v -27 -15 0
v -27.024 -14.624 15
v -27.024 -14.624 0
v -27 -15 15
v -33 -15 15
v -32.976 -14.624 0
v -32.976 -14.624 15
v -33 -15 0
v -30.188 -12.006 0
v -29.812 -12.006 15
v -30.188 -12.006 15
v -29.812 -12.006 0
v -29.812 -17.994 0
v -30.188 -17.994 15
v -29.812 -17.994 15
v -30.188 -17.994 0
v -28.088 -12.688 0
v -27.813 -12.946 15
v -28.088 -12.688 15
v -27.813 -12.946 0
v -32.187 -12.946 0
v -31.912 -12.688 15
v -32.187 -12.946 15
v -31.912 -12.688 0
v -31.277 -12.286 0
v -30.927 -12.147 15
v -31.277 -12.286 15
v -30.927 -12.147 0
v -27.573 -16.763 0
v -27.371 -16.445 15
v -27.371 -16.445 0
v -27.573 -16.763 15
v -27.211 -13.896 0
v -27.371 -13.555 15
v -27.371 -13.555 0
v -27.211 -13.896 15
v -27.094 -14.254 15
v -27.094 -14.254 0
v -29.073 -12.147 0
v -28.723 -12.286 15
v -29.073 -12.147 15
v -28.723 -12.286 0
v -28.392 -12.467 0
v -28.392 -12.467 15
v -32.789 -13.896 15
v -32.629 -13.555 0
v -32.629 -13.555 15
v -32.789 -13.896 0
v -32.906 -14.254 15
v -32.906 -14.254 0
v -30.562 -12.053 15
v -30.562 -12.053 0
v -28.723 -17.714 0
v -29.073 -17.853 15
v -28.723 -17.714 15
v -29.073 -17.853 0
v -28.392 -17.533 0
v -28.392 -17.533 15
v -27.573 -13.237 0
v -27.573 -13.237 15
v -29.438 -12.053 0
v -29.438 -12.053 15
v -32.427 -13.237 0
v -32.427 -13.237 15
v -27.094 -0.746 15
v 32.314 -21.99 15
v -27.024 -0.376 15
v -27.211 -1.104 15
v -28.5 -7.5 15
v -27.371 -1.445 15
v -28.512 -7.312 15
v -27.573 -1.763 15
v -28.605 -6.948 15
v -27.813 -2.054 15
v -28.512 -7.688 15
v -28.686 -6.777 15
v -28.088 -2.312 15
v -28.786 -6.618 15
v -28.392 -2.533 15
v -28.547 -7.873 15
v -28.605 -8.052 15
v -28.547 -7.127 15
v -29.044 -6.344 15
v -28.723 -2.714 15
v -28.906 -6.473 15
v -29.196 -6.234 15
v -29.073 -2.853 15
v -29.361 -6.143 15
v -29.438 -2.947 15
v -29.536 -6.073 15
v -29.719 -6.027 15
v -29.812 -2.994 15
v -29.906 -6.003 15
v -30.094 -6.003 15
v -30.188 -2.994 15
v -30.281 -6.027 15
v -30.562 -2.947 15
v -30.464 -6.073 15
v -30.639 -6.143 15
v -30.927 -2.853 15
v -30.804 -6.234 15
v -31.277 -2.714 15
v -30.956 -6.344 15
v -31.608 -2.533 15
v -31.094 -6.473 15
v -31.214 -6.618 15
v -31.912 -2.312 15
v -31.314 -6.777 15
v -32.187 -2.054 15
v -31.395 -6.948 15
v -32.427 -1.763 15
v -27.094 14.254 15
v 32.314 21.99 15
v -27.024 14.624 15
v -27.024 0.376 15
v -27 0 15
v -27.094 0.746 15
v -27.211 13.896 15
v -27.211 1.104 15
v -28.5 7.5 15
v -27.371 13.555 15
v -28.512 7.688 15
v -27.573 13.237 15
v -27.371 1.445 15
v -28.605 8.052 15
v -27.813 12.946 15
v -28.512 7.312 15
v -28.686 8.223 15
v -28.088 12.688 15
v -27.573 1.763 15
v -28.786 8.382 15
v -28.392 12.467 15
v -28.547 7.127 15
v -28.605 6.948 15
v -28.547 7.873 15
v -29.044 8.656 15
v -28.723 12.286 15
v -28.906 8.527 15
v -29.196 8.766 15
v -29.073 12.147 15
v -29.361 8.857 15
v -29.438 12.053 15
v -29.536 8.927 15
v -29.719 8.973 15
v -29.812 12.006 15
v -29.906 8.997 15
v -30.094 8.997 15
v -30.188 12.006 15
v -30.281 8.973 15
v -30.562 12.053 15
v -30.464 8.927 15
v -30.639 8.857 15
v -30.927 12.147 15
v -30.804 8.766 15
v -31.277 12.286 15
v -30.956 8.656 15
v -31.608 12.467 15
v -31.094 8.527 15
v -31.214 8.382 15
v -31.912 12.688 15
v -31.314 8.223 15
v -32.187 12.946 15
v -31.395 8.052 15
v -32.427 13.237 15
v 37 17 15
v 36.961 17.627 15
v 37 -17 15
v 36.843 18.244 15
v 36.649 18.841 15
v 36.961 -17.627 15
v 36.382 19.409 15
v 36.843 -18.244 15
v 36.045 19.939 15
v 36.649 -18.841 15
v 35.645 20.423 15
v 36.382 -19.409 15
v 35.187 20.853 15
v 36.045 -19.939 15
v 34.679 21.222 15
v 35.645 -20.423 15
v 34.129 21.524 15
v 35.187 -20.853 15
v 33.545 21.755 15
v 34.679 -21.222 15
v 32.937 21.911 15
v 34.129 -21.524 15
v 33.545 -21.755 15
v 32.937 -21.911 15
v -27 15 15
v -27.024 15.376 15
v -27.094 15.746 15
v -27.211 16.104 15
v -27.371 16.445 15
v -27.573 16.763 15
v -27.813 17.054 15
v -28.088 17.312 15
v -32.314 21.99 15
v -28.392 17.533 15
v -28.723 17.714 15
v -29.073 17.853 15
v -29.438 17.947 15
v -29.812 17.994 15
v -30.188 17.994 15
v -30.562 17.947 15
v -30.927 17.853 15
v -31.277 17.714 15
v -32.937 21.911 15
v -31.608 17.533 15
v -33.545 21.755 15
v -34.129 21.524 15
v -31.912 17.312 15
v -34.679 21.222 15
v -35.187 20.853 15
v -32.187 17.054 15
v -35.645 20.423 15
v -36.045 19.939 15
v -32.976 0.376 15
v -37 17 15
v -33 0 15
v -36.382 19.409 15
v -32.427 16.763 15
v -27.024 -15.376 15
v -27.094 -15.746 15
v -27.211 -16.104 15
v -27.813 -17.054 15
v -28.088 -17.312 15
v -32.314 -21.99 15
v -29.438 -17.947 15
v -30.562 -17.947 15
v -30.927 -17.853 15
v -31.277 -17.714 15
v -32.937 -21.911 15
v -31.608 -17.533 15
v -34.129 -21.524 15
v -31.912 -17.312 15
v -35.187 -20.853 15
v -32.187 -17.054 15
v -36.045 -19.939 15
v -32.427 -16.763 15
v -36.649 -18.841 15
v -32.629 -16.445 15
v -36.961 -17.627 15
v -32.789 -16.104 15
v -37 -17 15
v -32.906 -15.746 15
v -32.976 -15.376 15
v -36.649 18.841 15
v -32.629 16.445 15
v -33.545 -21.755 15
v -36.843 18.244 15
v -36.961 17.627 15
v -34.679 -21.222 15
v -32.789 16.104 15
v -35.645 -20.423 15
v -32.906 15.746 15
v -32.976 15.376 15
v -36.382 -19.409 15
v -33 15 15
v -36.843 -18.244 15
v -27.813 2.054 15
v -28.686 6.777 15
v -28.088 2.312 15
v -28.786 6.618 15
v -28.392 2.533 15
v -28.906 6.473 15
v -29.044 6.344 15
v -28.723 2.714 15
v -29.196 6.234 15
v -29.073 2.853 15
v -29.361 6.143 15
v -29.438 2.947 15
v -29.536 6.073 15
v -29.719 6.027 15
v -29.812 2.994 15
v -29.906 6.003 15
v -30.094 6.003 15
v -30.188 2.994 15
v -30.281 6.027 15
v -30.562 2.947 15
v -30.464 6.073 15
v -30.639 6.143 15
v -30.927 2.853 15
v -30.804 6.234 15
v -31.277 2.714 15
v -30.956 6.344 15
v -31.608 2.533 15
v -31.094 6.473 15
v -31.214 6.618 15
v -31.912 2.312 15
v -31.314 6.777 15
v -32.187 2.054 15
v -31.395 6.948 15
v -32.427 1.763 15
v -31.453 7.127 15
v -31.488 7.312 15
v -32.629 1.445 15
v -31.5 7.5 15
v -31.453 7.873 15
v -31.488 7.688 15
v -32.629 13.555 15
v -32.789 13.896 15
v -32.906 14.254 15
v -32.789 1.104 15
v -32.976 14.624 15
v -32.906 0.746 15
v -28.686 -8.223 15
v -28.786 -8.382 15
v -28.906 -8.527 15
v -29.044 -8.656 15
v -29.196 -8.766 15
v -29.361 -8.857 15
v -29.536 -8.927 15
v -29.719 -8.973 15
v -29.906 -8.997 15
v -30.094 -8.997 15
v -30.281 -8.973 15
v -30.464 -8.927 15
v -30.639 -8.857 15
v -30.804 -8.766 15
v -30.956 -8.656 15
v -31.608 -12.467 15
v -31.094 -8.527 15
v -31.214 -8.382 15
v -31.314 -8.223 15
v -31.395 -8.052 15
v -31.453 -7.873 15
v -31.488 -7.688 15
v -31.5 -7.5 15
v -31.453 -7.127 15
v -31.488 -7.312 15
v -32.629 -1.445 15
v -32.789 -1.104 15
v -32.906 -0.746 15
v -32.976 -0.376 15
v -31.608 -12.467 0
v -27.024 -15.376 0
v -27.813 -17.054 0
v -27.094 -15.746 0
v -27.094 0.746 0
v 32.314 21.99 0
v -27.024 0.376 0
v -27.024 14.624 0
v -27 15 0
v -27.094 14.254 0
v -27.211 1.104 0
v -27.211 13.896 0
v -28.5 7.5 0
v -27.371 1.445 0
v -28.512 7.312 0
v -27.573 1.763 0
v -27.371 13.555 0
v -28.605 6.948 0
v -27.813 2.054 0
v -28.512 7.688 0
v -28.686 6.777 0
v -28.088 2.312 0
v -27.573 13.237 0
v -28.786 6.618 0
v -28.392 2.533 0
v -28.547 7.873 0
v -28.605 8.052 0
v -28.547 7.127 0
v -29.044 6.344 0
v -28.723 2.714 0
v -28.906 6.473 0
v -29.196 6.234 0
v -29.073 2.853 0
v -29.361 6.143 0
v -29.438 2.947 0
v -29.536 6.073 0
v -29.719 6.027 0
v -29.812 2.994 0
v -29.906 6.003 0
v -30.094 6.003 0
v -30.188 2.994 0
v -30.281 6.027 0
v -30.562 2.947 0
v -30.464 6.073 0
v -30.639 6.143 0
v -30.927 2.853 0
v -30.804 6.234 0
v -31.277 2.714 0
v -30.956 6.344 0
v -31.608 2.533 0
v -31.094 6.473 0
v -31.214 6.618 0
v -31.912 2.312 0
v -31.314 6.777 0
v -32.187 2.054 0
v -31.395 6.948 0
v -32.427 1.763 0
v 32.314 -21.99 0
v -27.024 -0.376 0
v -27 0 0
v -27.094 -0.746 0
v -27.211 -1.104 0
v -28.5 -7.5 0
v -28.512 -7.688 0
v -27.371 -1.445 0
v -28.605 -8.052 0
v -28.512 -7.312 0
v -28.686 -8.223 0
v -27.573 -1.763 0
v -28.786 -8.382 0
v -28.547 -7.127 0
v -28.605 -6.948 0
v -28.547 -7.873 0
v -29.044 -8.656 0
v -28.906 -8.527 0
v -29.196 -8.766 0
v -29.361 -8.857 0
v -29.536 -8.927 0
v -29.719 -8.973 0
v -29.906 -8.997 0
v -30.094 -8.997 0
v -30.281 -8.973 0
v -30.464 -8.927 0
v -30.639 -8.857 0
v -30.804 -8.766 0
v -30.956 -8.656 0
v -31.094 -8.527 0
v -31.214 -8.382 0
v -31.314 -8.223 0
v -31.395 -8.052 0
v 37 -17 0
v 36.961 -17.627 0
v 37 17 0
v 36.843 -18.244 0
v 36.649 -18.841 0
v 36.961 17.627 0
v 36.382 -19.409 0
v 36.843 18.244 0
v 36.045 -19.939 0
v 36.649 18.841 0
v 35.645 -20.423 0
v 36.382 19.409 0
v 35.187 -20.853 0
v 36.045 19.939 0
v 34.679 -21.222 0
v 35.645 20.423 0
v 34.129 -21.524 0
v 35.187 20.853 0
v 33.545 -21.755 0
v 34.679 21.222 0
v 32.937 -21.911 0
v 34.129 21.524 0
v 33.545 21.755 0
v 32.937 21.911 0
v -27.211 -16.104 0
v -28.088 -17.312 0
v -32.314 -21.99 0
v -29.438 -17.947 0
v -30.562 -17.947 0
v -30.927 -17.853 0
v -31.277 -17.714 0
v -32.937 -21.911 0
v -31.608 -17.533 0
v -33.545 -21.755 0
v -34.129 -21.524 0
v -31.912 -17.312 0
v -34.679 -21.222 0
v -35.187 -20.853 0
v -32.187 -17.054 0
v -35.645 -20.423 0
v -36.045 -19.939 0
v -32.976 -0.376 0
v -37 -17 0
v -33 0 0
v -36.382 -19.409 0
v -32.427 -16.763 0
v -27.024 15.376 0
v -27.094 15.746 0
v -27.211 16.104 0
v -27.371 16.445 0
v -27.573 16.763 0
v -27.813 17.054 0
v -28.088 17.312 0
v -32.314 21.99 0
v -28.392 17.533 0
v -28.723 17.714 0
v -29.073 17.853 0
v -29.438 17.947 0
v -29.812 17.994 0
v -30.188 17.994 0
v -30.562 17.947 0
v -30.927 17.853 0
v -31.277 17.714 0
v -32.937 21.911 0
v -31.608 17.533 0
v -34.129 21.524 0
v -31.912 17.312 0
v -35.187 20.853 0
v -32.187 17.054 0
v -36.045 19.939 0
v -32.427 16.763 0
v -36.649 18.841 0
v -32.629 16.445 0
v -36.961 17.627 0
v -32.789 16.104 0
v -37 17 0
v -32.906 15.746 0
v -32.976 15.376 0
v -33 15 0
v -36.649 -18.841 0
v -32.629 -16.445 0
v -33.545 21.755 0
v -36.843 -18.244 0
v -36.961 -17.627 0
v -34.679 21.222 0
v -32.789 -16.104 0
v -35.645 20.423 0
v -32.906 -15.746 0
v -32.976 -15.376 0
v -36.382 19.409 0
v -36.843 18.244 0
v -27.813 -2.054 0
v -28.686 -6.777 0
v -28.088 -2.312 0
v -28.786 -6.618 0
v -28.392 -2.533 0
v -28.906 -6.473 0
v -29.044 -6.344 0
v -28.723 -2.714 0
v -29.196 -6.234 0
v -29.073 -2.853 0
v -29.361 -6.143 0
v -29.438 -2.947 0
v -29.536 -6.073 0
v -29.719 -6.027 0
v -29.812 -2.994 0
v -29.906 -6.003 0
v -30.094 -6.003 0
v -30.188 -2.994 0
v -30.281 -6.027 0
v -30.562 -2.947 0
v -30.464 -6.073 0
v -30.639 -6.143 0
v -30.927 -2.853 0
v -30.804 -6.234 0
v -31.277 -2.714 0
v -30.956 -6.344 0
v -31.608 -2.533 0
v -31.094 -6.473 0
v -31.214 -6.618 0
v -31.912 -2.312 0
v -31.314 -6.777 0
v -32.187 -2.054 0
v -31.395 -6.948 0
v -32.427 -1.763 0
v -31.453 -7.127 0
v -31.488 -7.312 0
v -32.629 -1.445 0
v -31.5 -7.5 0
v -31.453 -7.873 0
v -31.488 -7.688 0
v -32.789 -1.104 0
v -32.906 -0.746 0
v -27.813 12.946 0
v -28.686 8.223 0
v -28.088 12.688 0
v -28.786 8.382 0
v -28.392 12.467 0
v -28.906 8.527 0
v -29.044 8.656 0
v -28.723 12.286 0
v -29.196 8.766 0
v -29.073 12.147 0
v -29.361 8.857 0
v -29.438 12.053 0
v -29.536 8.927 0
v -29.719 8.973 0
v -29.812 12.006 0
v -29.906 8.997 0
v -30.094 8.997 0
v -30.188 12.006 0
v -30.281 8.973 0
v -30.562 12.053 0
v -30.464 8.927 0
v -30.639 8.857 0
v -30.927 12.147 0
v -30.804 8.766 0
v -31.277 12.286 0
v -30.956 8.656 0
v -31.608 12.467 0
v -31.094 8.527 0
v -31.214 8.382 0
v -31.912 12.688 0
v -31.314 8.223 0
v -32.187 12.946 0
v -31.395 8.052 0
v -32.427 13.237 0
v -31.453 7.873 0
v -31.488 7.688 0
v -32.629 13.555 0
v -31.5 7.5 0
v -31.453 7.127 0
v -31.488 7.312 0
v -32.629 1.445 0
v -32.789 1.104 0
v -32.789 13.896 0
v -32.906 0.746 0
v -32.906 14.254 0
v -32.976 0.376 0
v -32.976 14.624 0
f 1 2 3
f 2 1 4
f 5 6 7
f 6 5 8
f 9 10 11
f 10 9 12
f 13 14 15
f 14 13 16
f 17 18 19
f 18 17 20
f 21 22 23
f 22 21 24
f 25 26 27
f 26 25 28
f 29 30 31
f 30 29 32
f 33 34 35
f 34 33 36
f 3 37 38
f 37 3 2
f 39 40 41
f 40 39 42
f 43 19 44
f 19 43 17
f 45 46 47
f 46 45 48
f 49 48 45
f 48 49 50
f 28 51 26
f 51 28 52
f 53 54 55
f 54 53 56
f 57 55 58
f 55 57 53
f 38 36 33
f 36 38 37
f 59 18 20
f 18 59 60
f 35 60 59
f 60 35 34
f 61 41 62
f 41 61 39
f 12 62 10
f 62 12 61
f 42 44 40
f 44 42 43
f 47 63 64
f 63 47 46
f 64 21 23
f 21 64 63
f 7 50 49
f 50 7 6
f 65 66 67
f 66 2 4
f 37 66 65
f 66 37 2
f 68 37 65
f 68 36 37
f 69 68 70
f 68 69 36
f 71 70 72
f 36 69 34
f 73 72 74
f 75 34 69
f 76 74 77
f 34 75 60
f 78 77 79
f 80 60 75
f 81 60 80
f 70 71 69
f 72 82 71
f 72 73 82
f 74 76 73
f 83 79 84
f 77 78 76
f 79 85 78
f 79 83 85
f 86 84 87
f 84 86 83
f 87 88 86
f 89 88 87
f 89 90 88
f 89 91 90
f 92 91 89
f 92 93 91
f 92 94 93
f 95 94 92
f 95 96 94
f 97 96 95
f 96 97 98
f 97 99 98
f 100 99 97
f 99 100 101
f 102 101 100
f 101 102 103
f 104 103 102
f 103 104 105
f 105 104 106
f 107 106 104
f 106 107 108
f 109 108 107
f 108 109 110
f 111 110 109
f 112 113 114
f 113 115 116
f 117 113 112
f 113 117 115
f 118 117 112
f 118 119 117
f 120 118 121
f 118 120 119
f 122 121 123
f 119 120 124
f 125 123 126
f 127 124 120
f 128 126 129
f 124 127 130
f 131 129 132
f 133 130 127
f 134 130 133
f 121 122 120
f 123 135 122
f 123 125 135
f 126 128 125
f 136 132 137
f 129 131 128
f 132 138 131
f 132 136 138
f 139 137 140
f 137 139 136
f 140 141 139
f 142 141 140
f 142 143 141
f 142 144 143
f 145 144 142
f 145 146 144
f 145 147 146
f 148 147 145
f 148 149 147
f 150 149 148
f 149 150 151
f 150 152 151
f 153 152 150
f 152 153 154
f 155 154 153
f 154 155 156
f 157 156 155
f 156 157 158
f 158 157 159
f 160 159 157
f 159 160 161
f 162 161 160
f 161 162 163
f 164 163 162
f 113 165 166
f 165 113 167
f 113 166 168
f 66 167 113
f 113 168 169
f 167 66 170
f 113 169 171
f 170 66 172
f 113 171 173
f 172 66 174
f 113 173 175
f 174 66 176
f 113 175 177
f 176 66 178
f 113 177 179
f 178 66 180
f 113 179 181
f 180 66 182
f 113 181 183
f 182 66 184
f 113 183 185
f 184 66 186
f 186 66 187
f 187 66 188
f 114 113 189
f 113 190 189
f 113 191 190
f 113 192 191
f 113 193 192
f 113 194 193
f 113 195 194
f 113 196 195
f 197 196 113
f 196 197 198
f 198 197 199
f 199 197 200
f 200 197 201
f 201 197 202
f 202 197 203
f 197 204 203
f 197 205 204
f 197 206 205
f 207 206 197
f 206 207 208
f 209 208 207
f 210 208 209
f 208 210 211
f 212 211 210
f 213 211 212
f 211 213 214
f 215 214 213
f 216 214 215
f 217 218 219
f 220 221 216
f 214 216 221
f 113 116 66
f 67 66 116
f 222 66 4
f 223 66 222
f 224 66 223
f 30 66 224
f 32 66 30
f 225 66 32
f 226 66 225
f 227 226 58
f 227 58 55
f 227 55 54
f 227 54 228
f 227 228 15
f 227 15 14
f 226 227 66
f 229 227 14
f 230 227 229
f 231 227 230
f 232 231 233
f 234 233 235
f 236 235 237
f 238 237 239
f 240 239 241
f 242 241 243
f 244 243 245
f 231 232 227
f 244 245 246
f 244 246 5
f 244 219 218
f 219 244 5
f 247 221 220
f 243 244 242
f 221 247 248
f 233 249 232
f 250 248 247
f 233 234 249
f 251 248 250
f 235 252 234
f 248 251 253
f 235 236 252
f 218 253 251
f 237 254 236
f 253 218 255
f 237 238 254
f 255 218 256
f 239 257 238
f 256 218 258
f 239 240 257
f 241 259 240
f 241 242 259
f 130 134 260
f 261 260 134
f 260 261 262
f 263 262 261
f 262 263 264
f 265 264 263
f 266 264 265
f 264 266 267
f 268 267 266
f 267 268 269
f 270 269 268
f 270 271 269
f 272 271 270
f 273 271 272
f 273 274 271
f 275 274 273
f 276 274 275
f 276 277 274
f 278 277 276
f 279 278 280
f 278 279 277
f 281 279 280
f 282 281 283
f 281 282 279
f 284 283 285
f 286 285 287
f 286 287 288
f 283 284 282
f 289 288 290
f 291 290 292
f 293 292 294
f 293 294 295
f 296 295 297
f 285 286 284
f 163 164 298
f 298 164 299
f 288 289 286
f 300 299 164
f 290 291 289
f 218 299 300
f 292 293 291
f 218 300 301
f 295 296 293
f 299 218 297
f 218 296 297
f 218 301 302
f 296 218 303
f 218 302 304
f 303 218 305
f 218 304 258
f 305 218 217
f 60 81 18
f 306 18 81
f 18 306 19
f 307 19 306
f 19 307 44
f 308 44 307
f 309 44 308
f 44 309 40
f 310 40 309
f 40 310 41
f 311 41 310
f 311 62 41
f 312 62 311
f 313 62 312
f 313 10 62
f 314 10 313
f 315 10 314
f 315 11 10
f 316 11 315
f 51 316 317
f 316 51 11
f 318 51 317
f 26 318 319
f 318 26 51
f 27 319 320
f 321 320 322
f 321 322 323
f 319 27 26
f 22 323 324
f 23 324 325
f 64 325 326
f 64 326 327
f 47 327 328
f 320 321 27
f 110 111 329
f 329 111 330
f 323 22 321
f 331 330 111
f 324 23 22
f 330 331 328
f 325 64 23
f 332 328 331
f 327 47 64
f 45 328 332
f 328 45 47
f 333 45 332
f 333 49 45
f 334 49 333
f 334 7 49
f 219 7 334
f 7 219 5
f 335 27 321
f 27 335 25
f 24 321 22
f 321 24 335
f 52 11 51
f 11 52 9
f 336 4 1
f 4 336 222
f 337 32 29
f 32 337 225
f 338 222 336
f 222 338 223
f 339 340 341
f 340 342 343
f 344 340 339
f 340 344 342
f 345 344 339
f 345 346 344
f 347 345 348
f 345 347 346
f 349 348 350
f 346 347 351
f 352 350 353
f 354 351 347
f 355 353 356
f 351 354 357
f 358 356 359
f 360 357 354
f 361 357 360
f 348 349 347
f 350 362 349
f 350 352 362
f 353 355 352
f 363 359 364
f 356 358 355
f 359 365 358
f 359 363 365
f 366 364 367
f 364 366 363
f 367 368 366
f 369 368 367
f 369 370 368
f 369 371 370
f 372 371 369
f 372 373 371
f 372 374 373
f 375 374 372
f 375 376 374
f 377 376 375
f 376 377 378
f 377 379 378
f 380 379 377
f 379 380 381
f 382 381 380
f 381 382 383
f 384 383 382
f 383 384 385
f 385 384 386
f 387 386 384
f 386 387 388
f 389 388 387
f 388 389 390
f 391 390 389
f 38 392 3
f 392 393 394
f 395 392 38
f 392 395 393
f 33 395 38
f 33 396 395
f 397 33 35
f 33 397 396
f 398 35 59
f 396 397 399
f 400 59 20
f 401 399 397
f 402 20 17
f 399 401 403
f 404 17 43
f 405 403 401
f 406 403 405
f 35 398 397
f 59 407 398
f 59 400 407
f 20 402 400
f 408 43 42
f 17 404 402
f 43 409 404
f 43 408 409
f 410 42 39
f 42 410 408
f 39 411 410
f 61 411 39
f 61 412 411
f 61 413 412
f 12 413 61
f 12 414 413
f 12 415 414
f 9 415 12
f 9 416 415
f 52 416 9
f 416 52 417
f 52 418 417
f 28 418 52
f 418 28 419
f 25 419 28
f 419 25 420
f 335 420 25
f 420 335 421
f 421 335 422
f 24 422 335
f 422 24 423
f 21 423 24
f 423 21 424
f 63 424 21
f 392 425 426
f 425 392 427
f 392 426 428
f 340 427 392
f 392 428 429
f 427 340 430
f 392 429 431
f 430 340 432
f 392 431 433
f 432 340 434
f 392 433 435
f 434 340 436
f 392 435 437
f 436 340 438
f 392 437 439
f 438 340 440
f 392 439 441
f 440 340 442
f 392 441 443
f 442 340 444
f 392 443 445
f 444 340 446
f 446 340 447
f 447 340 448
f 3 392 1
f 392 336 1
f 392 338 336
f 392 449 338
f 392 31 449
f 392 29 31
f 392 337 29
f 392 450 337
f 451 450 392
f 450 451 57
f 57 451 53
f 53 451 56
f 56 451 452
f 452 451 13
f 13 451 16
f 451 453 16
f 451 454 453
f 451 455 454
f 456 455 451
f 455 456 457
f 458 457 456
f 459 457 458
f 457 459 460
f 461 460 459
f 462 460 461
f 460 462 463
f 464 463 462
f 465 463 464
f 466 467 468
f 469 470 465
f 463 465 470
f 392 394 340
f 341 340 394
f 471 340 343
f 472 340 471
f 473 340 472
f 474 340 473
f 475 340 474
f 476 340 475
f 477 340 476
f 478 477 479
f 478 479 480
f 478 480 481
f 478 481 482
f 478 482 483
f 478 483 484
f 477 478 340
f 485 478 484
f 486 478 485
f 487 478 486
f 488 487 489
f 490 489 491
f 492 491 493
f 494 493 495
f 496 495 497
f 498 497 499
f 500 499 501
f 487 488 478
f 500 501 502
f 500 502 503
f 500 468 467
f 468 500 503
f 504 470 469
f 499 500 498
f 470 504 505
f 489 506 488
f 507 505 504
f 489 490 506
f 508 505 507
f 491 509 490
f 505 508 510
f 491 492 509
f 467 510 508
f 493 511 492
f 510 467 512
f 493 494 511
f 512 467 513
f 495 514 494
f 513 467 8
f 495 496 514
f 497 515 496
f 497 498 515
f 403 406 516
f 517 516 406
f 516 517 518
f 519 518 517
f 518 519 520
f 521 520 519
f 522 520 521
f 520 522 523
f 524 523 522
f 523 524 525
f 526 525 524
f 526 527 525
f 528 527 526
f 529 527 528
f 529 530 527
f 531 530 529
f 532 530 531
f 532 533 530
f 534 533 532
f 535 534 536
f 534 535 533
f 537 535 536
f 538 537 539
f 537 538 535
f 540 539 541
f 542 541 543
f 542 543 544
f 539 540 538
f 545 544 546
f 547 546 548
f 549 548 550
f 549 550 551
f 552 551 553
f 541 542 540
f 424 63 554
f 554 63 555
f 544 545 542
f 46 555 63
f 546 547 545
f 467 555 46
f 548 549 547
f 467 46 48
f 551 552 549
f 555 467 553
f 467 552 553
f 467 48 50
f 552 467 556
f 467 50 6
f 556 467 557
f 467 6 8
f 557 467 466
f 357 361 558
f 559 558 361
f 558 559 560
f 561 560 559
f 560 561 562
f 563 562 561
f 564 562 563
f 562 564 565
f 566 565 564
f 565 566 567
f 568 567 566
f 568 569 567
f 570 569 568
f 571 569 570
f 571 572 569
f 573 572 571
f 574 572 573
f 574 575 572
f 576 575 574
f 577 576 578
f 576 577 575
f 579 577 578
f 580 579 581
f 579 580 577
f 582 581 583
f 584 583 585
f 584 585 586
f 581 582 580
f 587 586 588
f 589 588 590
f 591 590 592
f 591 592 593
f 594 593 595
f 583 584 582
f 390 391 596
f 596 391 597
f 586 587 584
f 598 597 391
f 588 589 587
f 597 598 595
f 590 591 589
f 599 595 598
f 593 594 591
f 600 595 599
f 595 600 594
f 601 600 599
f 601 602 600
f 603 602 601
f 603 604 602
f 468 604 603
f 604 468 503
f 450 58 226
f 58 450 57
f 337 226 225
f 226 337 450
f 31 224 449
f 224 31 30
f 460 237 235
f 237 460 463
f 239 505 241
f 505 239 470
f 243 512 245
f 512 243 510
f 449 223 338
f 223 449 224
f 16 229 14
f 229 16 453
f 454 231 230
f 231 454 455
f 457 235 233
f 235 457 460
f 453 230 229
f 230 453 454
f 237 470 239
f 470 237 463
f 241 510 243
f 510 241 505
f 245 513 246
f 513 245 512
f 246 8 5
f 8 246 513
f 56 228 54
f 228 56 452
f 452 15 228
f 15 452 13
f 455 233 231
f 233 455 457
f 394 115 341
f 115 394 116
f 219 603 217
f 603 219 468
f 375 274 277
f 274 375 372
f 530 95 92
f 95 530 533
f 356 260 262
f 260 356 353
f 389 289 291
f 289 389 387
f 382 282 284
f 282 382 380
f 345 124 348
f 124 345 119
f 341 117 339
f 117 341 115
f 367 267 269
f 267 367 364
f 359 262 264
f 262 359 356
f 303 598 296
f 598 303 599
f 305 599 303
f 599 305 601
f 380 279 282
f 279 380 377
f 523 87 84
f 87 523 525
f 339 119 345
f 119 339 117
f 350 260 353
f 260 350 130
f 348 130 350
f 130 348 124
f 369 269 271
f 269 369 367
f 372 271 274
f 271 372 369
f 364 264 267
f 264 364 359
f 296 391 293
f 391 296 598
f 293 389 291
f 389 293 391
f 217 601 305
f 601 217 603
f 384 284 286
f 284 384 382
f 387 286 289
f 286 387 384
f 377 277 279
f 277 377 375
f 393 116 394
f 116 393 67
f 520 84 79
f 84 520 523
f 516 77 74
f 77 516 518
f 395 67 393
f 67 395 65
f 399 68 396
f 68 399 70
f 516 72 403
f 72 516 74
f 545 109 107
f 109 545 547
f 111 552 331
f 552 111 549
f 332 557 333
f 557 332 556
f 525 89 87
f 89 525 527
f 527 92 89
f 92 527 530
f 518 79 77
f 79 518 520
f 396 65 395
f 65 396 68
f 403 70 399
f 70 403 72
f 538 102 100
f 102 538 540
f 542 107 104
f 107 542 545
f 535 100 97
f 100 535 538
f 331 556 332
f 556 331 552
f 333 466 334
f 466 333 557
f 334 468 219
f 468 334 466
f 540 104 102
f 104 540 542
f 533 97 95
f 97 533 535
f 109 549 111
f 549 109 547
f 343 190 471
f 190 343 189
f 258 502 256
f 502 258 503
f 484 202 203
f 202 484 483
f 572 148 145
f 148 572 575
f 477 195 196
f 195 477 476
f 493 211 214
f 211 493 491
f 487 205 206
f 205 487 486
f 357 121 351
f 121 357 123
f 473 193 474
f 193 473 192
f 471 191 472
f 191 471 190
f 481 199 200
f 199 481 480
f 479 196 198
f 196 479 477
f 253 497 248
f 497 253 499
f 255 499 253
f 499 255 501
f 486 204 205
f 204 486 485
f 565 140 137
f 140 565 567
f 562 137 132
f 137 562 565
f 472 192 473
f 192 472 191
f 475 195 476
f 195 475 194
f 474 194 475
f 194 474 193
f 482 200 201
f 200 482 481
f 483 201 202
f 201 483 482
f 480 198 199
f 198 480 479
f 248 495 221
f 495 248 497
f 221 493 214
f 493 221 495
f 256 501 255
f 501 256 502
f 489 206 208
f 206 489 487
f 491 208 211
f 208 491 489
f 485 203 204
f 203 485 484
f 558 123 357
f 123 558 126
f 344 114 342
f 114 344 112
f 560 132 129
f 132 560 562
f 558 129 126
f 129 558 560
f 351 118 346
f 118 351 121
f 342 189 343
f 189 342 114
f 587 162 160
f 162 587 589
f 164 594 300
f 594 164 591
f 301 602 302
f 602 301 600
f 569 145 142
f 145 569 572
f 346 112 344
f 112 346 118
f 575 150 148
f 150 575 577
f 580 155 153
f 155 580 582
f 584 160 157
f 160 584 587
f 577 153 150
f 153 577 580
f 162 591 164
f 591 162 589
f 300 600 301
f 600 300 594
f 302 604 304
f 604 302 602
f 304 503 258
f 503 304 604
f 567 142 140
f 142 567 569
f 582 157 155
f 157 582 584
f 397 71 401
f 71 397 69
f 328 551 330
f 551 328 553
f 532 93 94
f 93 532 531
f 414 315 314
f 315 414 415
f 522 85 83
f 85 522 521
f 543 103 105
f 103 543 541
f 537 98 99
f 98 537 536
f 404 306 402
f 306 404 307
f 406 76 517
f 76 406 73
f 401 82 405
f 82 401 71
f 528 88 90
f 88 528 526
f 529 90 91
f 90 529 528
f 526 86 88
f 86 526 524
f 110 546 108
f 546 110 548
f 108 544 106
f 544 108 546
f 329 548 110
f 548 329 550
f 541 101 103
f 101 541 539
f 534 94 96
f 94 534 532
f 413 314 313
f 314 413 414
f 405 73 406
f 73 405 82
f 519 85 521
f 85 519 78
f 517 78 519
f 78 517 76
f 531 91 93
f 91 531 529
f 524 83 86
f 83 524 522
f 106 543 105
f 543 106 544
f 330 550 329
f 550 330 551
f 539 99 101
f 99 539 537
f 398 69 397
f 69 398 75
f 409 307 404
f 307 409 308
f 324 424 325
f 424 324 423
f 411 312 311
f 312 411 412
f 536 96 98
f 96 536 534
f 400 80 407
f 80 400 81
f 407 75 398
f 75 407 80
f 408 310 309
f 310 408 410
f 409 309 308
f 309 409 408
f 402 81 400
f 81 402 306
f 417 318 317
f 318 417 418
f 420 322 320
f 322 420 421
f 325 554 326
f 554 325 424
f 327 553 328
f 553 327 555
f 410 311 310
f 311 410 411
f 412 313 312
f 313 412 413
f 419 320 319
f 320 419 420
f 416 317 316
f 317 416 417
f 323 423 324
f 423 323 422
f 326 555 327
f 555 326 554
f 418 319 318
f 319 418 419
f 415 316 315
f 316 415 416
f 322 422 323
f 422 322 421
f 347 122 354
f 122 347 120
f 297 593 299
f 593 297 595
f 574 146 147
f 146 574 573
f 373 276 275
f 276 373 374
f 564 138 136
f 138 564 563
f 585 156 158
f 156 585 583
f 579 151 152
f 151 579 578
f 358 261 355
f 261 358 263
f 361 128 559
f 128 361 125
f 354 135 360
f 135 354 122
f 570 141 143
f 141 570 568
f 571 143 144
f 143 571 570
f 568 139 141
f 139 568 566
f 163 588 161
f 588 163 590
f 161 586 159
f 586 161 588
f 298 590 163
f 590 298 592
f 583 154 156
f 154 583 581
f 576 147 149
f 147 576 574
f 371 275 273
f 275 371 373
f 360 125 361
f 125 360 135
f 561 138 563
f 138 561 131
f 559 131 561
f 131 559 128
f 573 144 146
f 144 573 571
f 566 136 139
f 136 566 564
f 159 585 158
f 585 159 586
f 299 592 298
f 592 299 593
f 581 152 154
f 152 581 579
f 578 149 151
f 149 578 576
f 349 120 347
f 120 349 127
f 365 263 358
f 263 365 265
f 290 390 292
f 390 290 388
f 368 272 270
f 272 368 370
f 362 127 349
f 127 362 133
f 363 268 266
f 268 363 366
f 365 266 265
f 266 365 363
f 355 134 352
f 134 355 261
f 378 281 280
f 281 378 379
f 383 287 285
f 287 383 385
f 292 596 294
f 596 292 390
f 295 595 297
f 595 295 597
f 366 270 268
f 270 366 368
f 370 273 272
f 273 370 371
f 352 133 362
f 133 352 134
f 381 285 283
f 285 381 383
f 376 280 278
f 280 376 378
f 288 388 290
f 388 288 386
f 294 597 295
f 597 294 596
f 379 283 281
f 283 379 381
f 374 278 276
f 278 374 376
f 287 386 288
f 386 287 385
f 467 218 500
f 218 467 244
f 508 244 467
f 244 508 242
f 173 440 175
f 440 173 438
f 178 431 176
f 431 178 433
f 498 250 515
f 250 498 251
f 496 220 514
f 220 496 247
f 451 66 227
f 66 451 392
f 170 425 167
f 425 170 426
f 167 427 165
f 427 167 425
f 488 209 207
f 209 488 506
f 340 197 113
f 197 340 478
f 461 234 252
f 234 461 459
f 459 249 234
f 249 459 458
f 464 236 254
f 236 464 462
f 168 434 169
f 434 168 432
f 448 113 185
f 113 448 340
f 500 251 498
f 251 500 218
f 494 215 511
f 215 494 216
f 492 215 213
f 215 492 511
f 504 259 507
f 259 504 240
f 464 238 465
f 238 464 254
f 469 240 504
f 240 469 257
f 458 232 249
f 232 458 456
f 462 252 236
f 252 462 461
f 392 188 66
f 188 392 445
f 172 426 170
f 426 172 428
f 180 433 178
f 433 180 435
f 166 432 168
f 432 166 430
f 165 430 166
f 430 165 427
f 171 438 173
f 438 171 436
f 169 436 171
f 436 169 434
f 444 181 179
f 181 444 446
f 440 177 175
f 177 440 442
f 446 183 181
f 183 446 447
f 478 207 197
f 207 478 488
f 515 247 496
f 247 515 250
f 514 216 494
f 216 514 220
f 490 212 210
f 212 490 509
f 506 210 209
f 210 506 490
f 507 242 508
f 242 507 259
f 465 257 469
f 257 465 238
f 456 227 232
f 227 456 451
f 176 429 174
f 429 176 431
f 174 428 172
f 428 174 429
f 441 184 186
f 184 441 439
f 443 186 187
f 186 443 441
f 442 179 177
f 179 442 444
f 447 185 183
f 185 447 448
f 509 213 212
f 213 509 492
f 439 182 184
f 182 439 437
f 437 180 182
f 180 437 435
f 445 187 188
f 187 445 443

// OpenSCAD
$fn = 50;


difference() {
	union() {
		hull() {
			translate(v = [-32.0000000000, 17.0000000000, 0]) {
				cylinder(h = 15, r = 5);
			}
			translate(v = [32.0000000000, 17.0000000000, 0]) {
				cylinder(h = 15, r = 5);
			}
			translate(v = [-32.0000000000, -17.0000000000, 0]) {
				cylinder(h = 15, r = 5);
			}
			translate(v = [32.0000000000, -17.0000000000, 0]) {
				cylinder(h = 15, r = 5);
			}
		}
	}
	union() {
		translate(v = [-30.0000000000, -15.0000000000, 0]) {
			cylinder(h = 15, r = 3.0000000000);
		}
		translate(v = [-30.0000000000, 0.0000000000, 0]) {
			cylinder(h = 15, r = 3.0000000000);
		}
		translate(v = [-30.0000000000, 15.0000000000, 0]) {
			cylinder(h = 15, r = 3.0000000000);
		}
		translate(v = [-30.0000000000, -15.0000000000, 0]) {
			cylinder(h = 15, r = 1.5000000000);
		}
		translate(v = [-30.0000000000, -7.5000000000, 0]) {
			cylinder(h = 15, r = 1.5000000000);
		}
		translate(v = [-30.0000000000, 0.0000000000, 0]) {
			cylinder(h = 15, r = 1.5000000000);
		}
		translate(v = [-30.0000000000, 7.5000000000, 0]) {
			cylinder(h = 15, r = 1.5000000000);
		}
		translate(v = [-30.0000000000, 15.0000000000, 0]) {
			cylinder(h = 15, r = 1.5000000000);
		}
		translate(v = [-30.0000000000, -15.0000000000, 0]) {
			cylinder(h = 15, r = 1.5000000000);
		}
		translate(v = [-30.0000000000, -7.5000000000, 0]) {
			cylinder(h = 15, r = 1.5000000000);
		}
		translate(v = [-30.0000000000, 0.0000000000, 0]) {
			cylinder(h = 15, r = 1.5000000000);
		}
		translate(v = [-30.0000000000, 7.5000000000, 0]) {
			cylinder(h = 15, r = 1.5000000000);
		}
		translate(v = [-30.0000000000, 15.0000000000, 0]) {
			cylinder(h = 15, r = 1.5000000000);
		}
		translate(v = [-30.0000000000, -15.0000000000, 0]) {
			cylinder(h = 15, r = 1.5000000000);
		}
		translate(v = [-30.0000000000, -7.5000000000, 0]) {
			cylinder(h = 15, r = 1.5000000000);
		}
		translate(v = [-30.0000000000, 0.0000000000, 0]) {
			cylinder(h = 15, r = 1.5000000000);
		}
		translate(v = [-30.0000000000, 7.5000000000, 0]) {
			cylinder(h = 15, r = 1.5000000000);
		}
		translate(v = [-30.0000000000, 15.0000000000, 0]) {
			cylinder(h = 15, r = 1.5000000000);
		}
	}
}
